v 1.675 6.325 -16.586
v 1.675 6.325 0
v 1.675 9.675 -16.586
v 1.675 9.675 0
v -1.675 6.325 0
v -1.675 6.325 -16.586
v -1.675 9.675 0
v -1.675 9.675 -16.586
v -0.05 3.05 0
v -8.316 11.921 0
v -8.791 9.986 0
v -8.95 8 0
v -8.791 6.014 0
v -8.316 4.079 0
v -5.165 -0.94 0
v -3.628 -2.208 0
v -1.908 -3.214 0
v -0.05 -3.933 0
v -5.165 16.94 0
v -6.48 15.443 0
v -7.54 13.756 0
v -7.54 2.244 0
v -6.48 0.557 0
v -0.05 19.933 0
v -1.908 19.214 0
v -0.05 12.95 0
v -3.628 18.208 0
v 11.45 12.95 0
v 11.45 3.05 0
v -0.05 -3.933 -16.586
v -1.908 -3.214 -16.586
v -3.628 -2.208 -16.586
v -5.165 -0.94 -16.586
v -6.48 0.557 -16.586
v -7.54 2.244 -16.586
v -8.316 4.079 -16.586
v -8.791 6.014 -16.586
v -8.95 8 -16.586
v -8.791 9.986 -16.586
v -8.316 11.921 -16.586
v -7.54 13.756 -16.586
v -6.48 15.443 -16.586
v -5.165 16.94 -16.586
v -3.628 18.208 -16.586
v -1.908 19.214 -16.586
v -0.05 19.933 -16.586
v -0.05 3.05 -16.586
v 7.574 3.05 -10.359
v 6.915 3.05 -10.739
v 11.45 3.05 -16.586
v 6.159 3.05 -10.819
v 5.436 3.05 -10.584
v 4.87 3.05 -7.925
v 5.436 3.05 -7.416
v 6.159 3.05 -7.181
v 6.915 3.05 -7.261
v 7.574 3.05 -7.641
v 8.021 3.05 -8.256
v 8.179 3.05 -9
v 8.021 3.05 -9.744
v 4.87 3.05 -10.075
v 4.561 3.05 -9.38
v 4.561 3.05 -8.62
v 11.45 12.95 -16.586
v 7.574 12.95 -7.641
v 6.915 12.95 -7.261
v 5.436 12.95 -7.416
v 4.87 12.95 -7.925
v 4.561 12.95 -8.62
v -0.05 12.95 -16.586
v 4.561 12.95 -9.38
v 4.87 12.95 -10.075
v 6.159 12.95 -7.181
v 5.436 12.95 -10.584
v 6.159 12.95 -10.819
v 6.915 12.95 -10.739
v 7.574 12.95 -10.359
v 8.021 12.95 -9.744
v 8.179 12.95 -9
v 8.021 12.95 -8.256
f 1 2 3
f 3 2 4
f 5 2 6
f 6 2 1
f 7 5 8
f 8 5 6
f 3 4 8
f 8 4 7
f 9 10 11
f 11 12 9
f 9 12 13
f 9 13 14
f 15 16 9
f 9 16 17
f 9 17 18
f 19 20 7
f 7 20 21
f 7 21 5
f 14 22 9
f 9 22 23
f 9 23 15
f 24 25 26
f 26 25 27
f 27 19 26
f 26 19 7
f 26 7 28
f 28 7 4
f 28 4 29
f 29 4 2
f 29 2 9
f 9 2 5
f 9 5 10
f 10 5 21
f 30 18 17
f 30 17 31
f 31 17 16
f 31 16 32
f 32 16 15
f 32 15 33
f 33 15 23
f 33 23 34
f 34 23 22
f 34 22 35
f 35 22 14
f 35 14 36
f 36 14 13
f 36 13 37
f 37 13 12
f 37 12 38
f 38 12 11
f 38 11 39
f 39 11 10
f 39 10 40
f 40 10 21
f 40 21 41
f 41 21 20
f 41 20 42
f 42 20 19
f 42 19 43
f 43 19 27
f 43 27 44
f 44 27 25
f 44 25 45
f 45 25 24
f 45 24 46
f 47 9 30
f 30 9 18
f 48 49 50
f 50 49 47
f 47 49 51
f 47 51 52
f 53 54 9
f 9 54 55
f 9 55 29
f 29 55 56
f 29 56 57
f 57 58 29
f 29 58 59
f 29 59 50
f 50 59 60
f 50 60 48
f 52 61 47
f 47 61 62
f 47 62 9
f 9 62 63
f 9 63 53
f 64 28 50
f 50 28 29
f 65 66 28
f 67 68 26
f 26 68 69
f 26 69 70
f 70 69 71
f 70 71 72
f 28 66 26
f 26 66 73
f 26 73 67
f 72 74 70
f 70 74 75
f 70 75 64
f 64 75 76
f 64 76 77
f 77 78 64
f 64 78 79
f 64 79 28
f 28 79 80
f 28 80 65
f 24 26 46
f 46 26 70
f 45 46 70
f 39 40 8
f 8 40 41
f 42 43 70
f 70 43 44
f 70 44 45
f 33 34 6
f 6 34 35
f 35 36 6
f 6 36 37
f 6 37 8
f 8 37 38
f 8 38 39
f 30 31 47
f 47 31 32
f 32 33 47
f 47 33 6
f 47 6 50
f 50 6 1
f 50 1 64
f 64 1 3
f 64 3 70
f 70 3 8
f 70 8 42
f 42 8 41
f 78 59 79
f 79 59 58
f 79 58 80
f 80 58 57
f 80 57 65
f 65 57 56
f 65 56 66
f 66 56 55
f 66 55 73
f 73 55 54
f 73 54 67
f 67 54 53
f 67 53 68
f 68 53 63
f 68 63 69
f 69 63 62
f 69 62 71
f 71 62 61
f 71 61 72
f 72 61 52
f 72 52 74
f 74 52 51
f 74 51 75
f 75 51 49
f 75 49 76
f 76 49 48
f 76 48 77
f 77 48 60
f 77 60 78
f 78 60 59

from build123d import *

# Parameters (mm, degrees)
SKETCH2_W           = 3.35
SKETCH2_H           = 3.35
BOSS_EXTRUDE1_DEPTH = 16.586038969
SKETCH4_R           = 1.8288
CUT_EXTRUDE1_DEPTH  = 27.291440529


with BuildPart() as part:
    # Sketch2 → Boss-Extrude1 (new body)
    with BuildSketch(Plane.XY):
        with BuildLine():
            Line((-0.05, 19.933147112), (-0.05, 12.95))
            Line((-0.05, 12.95), (11.45, 12.95))
            Line((11.45, 12.95), (11.45, 8))
            Line((11.45, 8), (11.45, 3.05))
            Line((11.45, 3.05), (-0.05, 3.05))
            Line((-0.05, 3.05), (-0.05, -3.933147112))
            ThreePointArc((-0.05, -3.933147112), (-8.95, 8), (-0.05, 19.933147112))
        make_face()
        with Locations((0, 8)):
            Rectangle(SKETCH2_W, SKETCH2_H, mode=Mode.SUBTRACT)
    extrude(amount=-BOSS_EXTRUDE1_DEPTH)

    # Sketch4 → Cut-Extrude1 (cut, through all)
    with BuildSketch(Plane.XZ.offset(-3.05)):
        with Locations((6.35, -9)):
            Circle(SKETCH4_R)
    extrude(amount=-CUT_EXTRUDE1_DEPTH, mode=Mode.SUBTRACT)


solid = part.part
